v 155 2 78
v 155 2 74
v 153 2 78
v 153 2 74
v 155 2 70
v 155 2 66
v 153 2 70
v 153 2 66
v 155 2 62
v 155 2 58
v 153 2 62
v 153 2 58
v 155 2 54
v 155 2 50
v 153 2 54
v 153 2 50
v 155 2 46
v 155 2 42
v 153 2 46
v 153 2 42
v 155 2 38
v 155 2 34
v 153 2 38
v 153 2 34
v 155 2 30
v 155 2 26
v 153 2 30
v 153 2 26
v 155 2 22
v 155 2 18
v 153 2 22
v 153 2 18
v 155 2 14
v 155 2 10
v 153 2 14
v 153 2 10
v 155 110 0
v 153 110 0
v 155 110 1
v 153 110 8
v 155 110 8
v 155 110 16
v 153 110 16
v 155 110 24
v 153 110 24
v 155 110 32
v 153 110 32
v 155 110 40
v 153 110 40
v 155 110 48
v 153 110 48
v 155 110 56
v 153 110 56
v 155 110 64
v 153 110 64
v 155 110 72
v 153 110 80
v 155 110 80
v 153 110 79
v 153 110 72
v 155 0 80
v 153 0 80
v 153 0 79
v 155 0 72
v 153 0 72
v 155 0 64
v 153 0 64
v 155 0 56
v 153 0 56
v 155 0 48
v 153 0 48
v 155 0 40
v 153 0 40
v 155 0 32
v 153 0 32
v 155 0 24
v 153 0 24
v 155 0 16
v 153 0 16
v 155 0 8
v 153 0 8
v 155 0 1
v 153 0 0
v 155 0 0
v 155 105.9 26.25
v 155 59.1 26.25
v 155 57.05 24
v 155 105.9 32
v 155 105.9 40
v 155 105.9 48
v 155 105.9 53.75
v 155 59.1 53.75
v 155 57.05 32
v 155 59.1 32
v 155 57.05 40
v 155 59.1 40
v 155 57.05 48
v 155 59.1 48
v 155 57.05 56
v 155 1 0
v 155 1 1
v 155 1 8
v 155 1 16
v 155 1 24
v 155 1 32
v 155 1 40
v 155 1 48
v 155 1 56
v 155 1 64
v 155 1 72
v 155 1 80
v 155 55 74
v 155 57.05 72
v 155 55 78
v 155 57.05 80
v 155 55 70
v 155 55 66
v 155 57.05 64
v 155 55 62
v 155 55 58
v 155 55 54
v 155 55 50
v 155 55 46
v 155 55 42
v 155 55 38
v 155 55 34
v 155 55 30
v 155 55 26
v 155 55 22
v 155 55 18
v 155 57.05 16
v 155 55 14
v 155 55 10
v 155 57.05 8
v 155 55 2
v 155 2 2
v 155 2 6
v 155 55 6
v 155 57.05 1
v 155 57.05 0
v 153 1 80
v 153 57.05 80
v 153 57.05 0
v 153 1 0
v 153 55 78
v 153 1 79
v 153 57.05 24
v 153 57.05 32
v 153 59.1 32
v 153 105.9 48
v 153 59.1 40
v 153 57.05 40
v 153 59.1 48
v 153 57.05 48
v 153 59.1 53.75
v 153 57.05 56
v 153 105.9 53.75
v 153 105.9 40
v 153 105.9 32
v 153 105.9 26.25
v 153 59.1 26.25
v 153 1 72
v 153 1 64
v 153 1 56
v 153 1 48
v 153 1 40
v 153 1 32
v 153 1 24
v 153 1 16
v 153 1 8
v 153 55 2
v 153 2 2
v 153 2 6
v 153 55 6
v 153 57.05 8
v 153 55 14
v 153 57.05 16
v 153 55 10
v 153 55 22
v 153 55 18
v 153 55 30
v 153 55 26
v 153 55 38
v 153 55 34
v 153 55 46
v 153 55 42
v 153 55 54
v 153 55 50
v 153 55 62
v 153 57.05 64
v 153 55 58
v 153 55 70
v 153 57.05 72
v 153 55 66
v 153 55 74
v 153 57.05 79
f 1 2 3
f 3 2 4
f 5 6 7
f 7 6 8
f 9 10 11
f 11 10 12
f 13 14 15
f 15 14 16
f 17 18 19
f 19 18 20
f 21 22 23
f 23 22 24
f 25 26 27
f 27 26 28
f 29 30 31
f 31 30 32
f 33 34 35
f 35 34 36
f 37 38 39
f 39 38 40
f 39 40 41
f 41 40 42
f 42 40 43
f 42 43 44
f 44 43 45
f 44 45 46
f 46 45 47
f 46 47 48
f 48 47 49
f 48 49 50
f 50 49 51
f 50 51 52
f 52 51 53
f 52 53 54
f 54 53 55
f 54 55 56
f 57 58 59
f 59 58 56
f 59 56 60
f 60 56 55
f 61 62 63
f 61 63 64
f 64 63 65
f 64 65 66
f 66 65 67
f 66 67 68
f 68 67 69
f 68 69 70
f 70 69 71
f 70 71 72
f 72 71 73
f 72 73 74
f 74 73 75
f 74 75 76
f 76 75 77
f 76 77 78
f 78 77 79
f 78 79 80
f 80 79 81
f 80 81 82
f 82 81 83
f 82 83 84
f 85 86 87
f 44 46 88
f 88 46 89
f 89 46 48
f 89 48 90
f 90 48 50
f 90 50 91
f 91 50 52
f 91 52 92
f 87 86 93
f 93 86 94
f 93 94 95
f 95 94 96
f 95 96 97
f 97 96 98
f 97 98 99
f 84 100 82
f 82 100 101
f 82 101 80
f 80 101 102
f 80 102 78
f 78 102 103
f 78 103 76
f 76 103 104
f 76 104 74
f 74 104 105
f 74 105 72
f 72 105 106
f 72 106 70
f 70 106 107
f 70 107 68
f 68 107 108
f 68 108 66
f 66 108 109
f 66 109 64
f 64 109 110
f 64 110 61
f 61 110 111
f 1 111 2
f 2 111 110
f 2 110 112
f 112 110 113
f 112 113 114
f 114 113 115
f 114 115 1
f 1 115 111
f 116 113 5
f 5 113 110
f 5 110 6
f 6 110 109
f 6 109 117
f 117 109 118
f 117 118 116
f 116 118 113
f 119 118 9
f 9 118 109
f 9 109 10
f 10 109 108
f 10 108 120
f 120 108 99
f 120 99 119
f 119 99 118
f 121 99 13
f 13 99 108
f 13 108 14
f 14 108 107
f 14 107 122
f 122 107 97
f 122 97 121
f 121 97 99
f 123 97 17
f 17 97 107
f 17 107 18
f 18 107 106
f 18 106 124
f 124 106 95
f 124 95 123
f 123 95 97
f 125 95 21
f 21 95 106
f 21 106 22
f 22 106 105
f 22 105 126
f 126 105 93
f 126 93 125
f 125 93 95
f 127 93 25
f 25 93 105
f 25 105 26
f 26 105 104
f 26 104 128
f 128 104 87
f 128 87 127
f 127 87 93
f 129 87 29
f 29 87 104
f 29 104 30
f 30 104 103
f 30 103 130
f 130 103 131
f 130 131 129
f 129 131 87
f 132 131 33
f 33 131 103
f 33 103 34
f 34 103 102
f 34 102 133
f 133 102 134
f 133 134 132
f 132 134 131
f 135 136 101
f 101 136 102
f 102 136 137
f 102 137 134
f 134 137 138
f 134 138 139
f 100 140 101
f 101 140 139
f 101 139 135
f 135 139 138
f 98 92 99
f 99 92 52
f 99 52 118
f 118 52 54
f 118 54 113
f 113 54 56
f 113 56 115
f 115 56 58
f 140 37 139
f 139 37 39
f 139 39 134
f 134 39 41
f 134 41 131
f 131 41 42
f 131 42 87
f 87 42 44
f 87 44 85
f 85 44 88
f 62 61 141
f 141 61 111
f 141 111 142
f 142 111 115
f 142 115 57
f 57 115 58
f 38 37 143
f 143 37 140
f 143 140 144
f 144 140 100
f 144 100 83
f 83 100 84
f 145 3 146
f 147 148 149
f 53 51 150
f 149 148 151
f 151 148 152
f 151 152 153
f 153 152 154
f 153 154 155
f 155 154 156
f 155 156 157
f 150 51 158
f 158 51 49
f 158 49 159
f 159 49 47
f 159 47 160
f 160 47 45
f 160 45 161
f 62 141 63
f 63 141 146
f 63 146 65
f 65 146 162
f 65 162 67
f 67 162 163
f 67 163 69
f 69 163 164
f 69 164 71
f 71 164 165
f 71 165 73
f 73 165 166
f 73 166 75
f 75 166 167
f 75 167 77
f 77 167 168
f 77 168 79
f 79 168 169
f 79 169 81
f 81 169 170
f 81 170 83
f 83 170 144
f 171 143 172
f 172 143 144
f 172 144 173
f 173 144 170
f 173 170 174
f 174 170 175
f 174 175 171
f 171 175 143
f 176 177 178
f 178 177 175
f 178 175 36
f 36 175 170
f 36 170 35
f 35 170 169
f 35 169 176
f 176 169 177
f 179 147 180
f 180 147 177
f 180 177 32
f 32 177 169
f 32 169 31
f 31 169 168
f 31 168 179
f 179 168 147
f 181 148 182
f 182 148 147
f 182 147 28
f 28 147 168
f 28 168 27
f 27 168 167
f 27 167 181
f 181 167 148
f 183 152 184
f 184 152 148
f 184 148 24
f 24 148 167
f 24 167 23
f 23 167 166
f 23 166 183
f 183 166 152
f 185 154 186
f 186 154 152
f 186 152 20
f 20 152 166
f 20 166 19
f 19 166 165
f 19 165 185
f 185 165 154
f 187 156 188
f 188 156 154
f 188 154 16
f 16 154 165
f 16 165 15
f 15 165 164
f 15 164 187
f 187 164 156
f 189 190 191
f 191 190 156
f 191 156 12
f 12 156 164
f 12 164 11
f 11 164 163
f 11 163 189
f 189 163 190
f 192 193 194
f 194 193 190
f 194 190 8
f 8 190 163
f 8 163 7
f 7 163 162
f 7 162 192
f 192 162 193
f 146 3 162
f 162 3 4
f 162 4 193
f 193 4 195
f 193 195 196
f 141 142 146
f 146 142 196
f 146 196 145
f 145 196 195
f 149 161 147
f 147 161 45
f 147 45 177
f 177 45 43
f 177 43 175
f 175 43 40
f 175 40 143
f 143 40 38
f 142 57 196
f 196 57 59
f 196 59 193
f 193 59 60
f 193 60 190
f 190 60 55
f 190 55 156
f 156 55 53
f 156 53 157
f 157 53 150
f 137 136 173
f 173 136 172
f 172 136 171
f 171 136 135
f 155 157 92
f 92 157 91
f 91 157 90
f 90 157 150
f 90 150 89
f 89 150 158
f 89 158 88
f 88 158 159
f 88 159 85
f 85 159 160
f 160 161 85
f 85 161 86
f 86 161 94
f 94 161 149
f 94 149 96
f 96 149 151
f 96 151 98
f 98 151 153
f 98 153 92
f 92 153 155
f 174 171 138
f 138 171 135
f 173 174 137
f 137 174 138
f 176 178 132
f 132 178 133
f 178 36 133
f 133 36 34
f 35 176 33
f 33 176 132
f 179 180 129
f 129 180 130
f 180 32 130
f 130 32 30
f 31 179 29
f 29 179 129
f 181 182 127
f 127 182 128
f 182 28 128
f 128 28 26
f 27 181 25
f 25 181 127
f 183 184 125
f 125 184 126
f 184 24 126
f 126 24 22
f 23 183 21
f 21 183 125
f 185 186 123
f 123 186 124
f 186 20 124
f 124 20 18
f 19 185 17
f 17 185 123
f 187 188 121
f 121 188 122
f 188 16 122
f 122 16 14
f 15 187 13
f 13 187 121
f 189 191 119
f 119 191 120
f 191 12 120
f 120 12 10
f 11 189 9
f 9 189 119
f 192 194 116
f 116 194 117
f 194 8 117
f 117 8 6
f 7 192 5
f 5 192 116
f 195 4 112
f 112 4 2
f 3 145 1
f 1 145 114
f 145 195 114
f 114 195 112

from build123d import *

# Parameters (mm, degrees)
SKETCH1_W           = 155
SKETCH1_H           = 110
BOSS_EXTRUDE1_DEPTH = 80
SKETCH2_W           = 151
SKETCH2_H           = 106
CUT_EXTRUDE1_DEPTH  = 78
SKETCH3_R           = 2.5
CUT_EXTRUDE2_DEPTH  = 2
SKETCH7_R           = 1.6
CUT_EXTRUDE7_DEPTH  = 2
SKETCH4_W           = 27.5
SKETCH4_H           = 46.8
CUT_EXTRUDE8_DEPTH  = 2
SKETCH8_W           = 4
SKETCH8_H           = 53
CUT_EXTRUDE9_DEPTH  = 2
SKETCH9_W           = 14
SKETCH9_H           = 14
CUT_EXTRUDE10_DEPTH = 2
SKETCH10_W          = 25.2
SKETCH10_H          = 71.2
SKETCH10_R          = 1.25
CUT_EXTRUDE12_DEPTH = 2
SKETCH11_R          = 2.5
SKETCH11_R_2        = 4.5
CUT_EXTRUDE13_DEPTH = 2
SKETCH12_W          = 153
SKETCH12_H          = 110
CUT_EXTRUDE14_DEPTH = 80


with BuildPart() as part:
    # Sketch1 → Boss-Extrude1 (new body)
    with BuildSketch(Plane.XY):
        with Locations((77.5, 55)):
            Rectangle(SKETCH1_W, SKETCH1_H)
    extrude(amount=BOSS_EXTRUDE1_DEPTH)

    # Sketch2 → Cut-Extrude1 (cut)
    with BuildSketch(Plane.XY.offset(80)):
        with Locations((77.5, 55)):
            Rectangle(SKETCH2_W, SKETCH2_H)
    extrude(amount=-CUT_EXTRUDE1_DEPTH, mode=Mode.SUBTRACT)

    # Sketch3 → Cut-Extrude2 (cut)
    with BuildSketch(Plane.XY.offset(2)):
        with Locations((145, 100.5)):
            Circle(SKETCH3_R)
        with Locations((145, 9.5)):
            Circle(SKETCH3_R)
        with Locations((10, 9.5)):
            Circle(SKETCH3_R)
        with Locations((10, 100.5)):
            Circle(SKETCH3_R)
    extrude(amount=-CUT_EXTRUDE2_DEPTH, mode=Mode.SUBTRACT)

    # Sketch7 → Cut-Extrude7 (cut)
    with BuildSketch(Plane(origin=(0, 110, 0), x_dir=(1, 0, 0), z_dir=(0, 1, 0))):
        with Locations((44.48, -20.14450396)):
            Circle(SKETCH7_R)
        with Locations((95.28, -17.14)):
            Circle(SKETCH7_R)
        with Locations((95.28, -62.86)):
            Circle(SKETCH7_R)
        with Locations((44.48, -47.62)):
            Circle(SKETCH7_R)
    extrude(amount=-CUT_EXTRUDE7_DEPTH, mode=Mode.SUBTRACT)

    # Sketch4 → Cut-Extrude8 (cut)
    with BuildSketch(Plane(origin=(155, 0, 0), x_dir=(0, 0, -1), z_dir=(1, 0, 0))):
        with Locations((-40, 82.5)):
            Rectangle(SKETCH4_W, SKETCH4_H)
    extrude(amount=-CUT_EXTRUDE8_DEPTH, mode=Mode.SUBTRACT)

    # Sketch8 → Cut-Extrude9 (cut)
    with BuildSketch(Plane(origin=(155, 0, 0), x_dir=(0, 0, -1), z_dir=(1, 0, 0))):
        with Locations((-68, 28.5)):
            Rectangle(SKETCH8_W, SKETCH8_H)
        with Locations((-76, 28.5)):
            Rectangle(SKETCH8_W, SKETCH8_H)
        with Locations((-60, 28.5)):
            Rectangle(SKETCH8_W, SKETCH8_H)
        with Locations((-52, 28.5)):
            Rectangle(SKETCH8_W, SKETCH8_H)
        with Locations((-44, 28.5)):
            Rectangle(SKETCH8_W, SKETCH8_H)
        with Locations((-36, 28.5)):
            Rectangle(SKETCH8_W, SKETCH8_H)
        with Locations((-28, 28.5)):
            Rectangle(SKETCH8_W, SKETCH8_H)
        with Locations((-20, 28.5)):
            Rectangle(SKETCH8_W, SKETCH8_H)
        with Locations((-12, 28.5)):
            Rectangle(SKETCH8_W, SKETCH8_H)
        with Locations((-4, 28.5)):
            Rectangle(SKETCH8_W, SKETCH8_H)
    extrude(amount=-CUT_EXTRUDE9_DEPTH, mode=Mode.SUBTRACT)

    # Sketch9 → Cut-Extrude10 (cut)
    with BuildSketch(Plane(origin=(0, 110, 0), x_dir=(1, 0, 0), z_dir=(0, 1, 0))):
        with Locations((120, -19)):
            Rectangle(SKETCH9_W, SKETCH9_H)
    extrude(amount=-CUT_EXTRUDE10_DEPTH, mode=Mode.SUBTRACT)

    # Sketch10 → Cut-Extrude12 (cut)
    with BuildSketch(Plane.ZY):
        with Locations((58, 55)):
            Rectangle(SKETCH10_W, SKETCH10_H)
        with Locations((42.5, 92.5)):
            Circle(SKETCH10_R)
        with Locations((73.5, 92.5)):
            Circle(SKETCH10_R)
        with Locations((42.5, 17.5)):
            Circle(SKETCH10_R)
        with Locations((73.5, 17.5)):
            Circle(SKETCH10_R)
    extrude(amount=-CUT_EXTRUDE12_DEPTH, mode=Mode.SUBTRACT)

    # Sketch11 → Cut-Extrude13 (cut)
    with BuildSketch(Plane.ZY):
        with Locations((20, 55)):
            Circle(SKETCH11_R)
        with Locations((20, 40)):
            Circle(SKETCH11_R)
        with Locations((20, 25)):
            Circle(SKETCH11_R)
        with Locations((20, 82.5)):
            Circle(SKETCH11_R_2)
    extrude(amount=-CUT_EXTRUDE13_DEPTH, mode=Mode.SUBTRACT)

    # Sketch12 → Cut-Extrude14 (cut)
    with BuildSketch(Plane.XY.offset(80)):
        with Locations((76.5, 55)):
            Rectangle(SKETCH12_W, SKETCH12_H)
    extrude(amount=-CUT_EXTRUDE14_DEPTH, mode=Mode.SUBTRACT)


solid = part.part
